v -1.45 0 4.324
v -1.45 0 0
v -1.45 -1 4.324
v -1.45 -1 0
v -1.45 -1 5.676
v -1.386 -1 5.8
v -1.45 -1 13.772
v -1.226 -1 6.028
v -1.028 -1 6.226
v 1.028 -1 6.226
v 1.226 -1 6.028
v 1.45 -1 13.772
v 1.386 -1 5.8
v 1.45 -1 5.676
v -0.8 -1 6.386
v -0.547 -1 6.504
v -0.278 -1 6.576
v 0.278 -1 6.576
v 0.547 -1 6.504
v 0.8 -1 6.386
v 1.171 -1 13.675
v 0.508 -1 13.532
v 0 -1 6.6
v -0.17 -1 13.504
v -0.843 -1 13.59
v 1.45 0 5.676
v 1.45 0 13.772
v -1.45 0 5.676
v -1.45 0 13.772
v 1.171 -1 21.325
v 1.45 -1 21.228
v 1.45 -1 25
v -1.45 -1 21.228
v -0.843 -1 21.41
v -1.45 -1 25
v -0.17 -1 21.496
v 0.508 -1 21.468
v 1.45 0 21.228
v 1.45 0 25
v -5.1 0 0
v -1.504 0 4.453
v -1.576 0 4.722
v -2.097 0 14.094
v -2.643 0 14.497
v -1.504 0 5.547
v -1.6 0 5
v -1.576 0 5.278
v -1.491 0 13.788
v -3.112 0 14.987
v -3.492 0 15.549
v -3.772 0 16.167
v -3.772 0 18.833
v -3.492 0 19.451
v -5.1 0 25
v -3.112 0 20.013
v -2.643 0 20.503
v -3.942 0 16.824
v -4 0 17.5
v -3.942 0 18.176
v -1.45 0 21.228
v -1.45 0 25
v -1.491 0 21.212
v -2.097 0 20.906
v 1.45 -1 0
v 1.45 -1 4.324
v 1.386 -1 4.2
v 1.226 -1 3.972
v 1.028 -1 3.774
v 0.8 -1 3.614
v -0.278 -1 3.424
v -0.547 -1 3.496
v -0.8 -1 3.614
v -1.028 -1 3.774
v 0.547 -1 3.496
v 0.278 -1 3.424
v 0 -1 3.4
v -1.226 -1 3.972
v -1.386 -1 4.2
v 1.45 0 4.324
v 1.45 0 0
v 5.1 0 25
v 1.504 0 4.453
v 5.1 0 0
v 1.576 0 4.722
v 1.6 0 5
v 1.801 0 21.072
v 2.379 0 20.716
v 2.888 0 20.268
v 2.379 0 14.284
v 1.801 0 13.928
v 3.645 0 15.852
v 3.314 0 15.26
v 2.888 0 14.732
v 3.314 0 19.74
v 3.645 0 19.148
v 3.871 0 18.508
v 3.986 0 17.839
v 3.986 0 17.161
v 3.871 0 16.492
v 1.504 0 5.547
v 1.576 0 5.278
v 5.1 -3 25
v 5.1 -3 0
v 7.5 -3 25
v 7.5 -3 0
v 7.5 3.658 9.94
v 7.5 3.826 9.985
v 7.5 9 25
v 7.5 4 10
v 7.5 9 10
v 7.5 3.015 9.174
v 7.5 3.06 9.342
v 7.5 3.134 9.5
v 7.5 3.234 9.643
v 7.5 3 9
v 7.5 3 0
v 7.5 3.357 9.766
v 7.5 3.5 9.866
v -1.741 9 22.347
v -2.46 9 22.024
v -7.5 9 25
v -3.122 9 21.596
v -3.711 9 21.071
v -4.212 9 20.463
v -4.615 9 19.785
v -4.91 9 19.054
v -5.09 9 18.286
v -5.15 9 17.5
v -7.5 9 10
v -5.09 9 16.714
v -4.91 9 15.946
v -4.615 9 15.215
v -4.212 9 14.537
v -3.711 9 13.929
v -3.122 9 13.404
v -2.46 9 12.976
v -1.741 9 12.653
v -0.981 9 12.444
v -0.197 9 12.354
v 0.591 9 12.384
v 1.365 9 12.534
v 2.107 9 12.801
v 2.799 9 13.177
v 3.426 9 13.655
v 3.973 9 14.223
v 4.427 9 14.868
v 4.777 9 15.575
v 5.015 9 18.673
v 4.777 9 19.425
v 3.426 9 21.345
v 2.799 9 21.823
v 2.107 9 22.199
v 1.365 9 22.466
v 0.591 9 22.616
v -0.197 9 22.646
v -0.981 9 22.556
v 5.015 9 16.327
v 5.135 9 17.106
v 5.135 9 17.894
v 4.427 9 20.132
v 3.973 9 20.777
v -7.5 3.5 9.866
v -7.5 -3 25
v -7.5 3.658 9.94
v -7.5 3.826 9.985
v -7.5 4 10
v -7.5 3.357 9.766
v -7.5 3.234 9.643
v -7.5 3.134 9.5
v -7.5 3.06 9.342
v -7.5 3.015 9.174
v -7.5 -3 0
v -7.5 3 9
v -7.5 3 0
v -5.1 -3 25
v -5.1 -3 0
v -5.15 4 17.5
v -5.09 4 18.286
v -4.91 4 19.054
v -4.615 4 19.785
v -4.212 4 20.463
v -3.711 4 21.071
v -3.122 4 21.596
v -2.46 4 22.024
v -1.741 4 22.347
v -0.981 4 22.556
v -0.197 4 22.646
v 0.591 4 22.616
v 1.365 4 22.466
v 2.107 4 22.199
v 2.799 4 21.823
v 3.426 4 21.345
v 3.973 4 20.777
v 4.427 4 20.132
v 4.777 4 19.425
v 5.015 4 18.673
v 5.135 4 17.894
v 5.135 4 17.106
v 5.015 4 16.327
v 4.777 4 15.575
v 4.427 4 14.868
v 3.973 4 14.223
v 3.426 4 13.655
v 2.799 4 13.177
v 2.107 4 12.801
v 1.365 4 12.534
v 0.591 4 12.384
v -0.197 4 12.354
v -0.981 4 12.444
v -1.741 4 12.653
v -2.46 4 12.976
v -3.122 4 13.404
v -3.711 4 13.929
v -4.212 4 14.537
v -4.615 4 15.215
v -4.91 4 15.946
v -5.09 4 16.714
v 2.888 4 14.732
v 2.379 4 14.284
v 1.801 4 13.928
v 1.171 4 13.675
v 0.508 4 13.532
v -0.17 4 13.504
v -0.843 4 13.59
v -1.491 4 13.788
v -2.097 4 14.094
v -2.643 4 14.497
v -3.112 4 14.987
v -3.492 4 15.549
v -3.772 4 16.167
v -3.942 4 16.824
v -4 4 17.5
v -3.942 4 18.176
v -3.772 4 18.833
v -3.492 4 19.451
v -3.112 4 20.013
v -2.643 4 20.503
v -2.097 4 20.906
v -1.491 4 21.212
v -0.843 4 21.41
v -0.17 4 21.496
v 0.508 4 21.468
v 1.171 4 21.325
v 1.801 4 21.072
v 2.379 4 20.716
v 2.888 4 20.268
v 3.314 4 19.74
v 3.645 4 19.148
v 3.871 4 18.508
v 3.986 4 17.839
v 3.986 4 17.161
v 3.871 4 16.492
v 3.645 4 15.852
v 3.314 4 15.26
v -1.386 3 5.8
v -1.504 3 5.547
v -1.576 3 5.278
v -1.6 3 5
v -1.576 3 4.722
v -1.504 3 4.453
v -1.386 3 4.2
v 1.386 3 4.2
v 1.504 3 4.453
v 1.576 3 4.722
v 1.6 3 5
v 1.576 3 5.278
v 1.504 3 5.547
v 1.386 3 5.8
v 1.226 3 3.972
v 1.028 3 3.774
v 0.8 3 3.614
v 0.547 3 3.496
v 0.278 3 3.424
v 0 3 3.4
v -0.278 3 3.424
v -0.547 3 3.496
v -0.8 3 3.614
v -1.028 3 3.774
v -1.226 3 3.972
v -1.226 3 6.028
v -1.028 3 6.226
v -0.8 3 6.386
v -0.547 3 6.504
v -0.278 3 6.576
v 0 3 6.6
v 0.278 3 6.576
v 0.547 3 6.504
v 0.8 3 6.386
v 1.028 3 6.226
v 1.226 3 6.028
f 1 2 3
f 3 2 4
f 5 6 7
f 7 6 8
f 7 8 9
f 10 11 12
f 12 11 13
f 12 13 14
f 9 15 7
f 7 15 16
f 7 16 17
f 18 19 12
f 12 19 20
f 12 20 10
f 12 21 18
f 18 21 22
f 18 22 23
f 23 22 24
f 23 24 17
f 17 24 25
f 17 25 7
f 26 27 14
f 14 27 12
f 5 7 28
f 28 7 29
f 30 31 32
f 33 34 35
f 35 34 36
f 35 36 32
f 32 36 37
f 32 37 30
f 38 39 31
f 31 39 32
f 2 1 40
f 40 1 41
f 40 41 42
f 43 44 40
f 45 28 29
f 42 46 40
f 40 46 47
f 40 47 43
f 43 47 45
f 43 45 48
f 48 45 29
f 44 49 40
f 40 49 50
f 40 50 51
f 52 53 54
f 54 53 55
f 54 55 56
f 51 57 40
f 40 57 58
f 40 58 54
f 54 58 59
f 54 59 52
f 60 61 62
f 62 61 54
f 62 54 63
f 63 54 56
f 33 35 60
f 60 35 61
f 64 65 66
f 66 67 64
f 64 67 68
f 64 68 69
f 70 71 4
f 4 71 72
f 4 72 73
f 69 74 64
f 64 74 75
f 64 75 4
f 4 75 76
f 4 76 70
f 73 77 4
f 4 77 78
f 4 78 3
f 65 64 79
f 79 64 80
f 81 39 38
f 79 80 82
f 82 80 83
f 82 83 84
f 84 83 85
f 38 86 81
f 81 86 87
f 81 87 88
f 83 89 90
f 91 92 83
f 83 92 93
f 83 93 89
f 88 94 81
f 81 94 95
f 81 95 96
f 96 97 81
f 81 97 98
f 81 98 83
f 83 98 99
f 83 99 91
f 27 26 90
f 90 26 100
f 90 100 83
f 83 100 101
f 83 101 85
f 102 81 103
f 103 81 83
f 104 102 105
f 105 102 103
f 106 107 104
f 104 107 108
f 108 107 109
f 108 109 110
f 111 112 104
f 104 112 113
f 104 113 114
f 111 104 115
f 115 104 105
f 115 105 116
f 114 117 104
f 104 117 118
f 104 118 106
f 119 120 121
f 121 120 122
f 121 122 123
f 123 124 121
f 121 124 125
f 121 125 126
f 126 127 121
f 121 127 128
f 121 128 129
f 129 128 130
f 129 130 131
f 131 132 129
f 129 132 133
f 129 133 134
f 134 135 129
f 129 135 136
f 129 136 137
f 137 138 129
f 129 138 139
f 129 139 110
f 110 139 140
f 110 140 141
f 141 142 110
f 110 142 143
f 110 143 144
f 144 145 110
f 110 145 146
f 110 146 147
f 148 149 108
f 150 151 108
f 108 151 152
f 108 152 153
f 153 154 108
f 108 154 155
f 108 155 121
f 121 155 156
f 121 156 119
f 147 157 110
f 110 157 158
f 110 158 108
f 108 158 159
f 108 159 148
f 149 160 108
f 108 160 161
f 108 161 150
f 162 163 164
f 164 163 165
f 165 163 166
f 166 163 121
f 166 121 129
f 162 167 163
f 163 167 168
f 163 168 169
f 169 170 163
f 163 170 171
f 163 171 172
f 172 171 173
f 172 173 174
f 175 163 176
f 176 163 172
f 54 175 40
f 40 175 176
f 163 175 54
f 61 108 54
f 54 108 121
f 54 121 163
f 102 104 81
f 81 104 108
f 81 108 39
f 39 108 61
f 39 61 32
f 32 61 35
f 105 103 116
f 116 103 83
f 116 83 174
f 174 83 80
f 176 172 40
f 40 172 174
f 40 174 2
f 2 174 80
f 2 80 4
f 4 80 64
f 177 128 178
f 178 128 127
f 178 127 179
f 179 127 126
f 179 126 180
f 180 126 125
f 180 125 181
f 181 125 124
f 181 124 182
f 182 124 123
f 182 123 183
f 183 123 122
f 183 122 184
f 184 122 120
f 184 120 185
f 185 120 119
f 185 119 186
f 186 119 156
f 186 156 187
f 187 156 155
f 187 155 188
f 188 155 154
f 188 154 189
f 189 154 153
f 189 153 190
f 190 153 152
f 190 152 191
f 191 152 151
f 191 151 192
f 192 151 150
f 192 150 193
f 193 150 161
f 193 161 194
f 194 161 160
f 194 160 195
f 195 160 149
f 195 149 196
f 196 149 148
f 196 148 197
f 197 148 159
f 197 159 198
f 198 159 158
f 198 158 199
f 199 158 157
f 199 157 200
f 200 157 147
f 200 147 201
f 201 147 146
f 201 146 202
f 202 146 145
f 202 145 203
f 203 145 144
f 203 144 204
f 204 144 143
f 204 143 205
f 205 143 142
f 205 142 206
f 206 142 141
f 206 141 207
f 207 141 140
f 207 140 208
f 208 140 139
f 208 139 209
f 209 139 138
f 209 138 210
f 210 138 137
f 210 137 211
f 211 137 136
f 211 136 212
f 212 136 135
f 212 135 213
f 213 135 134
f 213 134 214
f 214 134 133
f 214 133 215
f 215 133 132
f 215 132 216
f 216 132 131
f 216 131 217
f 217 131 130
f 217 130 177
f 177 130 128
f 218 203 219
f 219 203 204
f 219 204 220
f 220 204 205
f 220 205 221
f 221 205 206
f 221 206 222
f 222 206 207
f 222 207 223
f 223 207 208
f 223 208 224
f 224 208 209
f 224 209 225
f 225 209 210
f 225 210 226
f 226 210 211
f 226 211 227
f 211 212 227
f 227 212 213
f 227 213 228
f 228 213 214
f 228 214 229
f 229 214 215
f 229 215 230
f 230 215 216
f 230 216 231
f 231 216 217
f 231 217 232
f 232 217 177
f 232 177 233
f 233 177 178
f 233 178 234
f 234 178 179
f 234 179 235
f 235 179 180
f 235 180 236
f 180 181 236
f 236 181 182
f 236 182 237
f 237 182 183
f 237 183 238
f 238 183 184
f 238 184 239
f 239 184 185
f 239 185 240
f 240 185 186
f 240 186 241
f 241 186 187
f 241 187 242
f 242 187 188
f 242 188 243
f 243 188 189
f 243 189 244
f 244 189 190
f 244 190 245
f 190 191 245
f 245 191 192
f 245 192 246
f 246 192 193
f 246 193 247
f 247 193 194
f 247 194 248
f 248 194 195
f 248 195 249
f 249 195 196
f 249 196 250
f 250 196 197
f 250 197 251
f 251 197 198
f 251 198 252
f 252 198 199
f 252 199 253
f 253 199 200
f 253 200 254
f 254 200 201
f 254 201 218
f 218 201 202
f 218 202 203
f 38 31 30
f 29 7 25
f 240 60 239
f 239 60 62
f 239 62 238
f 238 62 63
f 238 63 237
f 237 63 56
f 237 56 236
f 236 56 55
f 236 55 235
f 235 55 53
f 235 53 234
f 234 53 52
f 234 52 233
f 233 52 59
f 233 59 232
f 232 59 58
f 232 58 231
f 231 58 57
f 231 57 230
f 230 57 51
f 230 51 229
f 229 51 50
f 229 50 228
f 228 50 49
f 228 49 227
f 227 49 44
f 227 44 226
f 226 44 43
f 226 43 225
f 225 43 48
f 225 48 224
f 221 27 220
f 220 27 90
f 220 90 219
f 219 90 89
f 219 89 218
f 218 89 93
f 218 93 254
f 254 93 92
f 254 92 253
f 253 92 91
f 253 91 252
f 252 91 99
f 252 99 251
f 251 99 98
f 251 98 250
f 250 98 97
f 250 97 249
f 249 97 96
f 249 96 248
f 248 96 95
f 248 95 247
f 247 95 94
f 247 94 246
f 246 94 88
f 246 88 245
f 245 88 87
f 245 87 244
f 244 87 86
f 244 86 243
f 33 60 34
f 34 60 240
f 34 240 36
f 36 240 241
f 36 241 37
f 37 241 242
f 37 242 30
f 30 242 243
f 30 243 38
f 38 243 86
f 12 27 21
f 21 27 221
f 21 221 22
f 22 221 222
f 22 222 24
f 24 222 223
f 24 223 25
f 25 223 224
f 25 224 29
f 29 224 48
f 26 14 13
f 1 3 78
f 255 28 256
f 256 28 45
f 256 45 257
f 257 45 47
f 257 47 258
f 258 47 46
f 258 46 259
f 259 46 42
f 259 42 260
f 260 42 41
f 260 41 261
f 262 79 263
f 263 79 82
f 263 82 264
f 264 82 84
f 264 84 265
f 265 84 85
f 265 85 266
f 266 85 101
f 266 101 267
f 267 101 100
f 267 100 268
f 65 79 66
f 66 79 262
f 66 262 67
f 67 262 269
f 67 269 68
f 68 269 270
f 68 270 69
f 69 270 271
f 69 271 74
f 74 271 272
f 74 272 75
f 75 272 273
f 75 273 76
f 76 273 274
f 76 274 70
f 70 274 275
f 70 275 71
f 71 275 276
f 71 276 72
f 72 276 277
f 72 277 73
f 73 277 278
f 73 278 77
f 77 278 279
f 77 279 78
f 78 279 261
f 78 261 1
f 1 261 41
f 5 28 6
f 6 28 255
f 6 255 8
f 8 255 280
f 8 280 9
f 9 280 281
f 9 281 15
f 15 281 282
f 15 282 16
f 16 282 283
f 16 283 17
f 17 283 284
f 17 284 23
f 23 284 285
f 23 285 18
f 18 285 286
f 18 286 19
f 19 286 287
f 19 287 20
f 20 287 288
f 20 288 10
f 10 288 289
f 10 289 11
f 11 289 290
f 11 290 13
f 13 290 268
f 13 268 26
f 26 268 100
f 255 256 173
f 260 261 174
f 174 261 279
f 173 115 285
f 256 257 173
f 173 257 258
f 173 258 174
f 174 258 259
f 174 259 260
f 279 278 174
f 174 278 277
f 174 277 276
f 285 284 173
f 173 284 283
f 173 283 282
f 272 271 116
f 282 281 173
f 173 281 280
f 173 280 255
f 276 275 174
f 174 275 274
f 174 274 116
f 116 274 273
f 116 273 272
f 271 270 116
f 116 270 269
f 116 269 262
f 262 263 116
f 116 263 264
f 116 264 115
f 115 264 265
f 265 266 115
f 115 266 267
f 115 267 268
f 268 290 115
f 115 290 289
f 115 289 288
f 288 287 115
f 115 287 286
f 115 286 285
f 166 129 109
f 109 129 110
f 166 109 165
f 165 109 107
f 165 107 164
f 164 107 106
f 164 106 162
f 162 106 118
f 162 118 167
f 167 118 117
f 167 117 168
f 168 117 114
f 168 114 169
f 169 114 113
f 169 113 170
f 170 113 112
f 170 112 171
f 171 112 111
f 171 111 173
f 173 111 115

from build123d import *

# Parameters (mm, degrees)
MAIN_DEPTH         = 25
SKETCH2_R          = 5.15
ROLLINGHOLE_DEPTH  = 5
SKETCH3_R          = 4
CUT_EXTRUDE2_DEPTH = 8
SKETCH4_R          = 1.6
FIXHOLE_DEPTH      = 13
SKETCH5_W          = 10
SKETCH5_H          = 6
CUT_EXTRUDE4_DEPTH = 16
FILLET1_R          = 1


with BuildPart() as part:
    # Sketch1 → Main (new body)
    with BuildSketch(Plane.XY):
        Polygon((-5.1, 0), (-5.1, -3), (-7.5, -3), (-7.5, 9), (7.5, 9), (7.5, -3), (5.1, -3), (5.1, 0), (1.45, 0), (1.45, -1), (-1.45, -1), (-1.45, 0), align=None)
    extrude(amount=MAIN_DEPTH)

    # Sketch2 → RollingHole (cut)
    with BuildSketch(Plane(origin=(0, 9, 0), x_dir=(1, 0, 0), z_dir=(0, 1, 0))):
        with Locations((0, -17.5)):
            Circle(SKETCH2_R)
    extrude(amount=-ROLLINGHOLE_DEPTH, mode=Mode.SUBTRACT)

    # Sketch3 → Cut-Extrude2 (cut, through all)
    with BuildSketch(Plane(origin=(0, 4, 0), x_dir=(1, 0, 0), z_dir=(0, 1, 0))):
        with Locations((0, -17.5)):
            Circle(SKETCH3_R)
    extrude(amount=-CUT_EXTRUDE2_DEPTH, mode=Mode.SUBTRACT)

    # Sketch4 → FixHole (cut, through all)
    with BuildSketch(Plane(origin=(0, 9, 0), x_dir=(1, 0, 0), z_dir=(0, 1, 0))):
        with Locations((0, -5)):
            Circle(SKETCH4_R)
    extrude(amount=-FIXHOLE_DEPTH, mode=Mode.SUBTRACT)

    # Sketch5 → Cut-Extrude4 (cut, through all)
    with BuildSketch(Plane.ZY.offset(7.5)):
        with Locations((5, 6)):
            Rectangle(SKETCH5_W, SKETCH5_H)
    extrude(amount=-CUT_EXTRUDE4_DEPTH, mode=Mode.SUBTRACT)

    # Fillet1
    fillet1_edges = [part.edges().sort_by_distance(p)[0] for p in [
        (0, 3, 10),
    ]]
    fillet(fillet1_edges, radius=FILLET1_R)


solid = part.part
